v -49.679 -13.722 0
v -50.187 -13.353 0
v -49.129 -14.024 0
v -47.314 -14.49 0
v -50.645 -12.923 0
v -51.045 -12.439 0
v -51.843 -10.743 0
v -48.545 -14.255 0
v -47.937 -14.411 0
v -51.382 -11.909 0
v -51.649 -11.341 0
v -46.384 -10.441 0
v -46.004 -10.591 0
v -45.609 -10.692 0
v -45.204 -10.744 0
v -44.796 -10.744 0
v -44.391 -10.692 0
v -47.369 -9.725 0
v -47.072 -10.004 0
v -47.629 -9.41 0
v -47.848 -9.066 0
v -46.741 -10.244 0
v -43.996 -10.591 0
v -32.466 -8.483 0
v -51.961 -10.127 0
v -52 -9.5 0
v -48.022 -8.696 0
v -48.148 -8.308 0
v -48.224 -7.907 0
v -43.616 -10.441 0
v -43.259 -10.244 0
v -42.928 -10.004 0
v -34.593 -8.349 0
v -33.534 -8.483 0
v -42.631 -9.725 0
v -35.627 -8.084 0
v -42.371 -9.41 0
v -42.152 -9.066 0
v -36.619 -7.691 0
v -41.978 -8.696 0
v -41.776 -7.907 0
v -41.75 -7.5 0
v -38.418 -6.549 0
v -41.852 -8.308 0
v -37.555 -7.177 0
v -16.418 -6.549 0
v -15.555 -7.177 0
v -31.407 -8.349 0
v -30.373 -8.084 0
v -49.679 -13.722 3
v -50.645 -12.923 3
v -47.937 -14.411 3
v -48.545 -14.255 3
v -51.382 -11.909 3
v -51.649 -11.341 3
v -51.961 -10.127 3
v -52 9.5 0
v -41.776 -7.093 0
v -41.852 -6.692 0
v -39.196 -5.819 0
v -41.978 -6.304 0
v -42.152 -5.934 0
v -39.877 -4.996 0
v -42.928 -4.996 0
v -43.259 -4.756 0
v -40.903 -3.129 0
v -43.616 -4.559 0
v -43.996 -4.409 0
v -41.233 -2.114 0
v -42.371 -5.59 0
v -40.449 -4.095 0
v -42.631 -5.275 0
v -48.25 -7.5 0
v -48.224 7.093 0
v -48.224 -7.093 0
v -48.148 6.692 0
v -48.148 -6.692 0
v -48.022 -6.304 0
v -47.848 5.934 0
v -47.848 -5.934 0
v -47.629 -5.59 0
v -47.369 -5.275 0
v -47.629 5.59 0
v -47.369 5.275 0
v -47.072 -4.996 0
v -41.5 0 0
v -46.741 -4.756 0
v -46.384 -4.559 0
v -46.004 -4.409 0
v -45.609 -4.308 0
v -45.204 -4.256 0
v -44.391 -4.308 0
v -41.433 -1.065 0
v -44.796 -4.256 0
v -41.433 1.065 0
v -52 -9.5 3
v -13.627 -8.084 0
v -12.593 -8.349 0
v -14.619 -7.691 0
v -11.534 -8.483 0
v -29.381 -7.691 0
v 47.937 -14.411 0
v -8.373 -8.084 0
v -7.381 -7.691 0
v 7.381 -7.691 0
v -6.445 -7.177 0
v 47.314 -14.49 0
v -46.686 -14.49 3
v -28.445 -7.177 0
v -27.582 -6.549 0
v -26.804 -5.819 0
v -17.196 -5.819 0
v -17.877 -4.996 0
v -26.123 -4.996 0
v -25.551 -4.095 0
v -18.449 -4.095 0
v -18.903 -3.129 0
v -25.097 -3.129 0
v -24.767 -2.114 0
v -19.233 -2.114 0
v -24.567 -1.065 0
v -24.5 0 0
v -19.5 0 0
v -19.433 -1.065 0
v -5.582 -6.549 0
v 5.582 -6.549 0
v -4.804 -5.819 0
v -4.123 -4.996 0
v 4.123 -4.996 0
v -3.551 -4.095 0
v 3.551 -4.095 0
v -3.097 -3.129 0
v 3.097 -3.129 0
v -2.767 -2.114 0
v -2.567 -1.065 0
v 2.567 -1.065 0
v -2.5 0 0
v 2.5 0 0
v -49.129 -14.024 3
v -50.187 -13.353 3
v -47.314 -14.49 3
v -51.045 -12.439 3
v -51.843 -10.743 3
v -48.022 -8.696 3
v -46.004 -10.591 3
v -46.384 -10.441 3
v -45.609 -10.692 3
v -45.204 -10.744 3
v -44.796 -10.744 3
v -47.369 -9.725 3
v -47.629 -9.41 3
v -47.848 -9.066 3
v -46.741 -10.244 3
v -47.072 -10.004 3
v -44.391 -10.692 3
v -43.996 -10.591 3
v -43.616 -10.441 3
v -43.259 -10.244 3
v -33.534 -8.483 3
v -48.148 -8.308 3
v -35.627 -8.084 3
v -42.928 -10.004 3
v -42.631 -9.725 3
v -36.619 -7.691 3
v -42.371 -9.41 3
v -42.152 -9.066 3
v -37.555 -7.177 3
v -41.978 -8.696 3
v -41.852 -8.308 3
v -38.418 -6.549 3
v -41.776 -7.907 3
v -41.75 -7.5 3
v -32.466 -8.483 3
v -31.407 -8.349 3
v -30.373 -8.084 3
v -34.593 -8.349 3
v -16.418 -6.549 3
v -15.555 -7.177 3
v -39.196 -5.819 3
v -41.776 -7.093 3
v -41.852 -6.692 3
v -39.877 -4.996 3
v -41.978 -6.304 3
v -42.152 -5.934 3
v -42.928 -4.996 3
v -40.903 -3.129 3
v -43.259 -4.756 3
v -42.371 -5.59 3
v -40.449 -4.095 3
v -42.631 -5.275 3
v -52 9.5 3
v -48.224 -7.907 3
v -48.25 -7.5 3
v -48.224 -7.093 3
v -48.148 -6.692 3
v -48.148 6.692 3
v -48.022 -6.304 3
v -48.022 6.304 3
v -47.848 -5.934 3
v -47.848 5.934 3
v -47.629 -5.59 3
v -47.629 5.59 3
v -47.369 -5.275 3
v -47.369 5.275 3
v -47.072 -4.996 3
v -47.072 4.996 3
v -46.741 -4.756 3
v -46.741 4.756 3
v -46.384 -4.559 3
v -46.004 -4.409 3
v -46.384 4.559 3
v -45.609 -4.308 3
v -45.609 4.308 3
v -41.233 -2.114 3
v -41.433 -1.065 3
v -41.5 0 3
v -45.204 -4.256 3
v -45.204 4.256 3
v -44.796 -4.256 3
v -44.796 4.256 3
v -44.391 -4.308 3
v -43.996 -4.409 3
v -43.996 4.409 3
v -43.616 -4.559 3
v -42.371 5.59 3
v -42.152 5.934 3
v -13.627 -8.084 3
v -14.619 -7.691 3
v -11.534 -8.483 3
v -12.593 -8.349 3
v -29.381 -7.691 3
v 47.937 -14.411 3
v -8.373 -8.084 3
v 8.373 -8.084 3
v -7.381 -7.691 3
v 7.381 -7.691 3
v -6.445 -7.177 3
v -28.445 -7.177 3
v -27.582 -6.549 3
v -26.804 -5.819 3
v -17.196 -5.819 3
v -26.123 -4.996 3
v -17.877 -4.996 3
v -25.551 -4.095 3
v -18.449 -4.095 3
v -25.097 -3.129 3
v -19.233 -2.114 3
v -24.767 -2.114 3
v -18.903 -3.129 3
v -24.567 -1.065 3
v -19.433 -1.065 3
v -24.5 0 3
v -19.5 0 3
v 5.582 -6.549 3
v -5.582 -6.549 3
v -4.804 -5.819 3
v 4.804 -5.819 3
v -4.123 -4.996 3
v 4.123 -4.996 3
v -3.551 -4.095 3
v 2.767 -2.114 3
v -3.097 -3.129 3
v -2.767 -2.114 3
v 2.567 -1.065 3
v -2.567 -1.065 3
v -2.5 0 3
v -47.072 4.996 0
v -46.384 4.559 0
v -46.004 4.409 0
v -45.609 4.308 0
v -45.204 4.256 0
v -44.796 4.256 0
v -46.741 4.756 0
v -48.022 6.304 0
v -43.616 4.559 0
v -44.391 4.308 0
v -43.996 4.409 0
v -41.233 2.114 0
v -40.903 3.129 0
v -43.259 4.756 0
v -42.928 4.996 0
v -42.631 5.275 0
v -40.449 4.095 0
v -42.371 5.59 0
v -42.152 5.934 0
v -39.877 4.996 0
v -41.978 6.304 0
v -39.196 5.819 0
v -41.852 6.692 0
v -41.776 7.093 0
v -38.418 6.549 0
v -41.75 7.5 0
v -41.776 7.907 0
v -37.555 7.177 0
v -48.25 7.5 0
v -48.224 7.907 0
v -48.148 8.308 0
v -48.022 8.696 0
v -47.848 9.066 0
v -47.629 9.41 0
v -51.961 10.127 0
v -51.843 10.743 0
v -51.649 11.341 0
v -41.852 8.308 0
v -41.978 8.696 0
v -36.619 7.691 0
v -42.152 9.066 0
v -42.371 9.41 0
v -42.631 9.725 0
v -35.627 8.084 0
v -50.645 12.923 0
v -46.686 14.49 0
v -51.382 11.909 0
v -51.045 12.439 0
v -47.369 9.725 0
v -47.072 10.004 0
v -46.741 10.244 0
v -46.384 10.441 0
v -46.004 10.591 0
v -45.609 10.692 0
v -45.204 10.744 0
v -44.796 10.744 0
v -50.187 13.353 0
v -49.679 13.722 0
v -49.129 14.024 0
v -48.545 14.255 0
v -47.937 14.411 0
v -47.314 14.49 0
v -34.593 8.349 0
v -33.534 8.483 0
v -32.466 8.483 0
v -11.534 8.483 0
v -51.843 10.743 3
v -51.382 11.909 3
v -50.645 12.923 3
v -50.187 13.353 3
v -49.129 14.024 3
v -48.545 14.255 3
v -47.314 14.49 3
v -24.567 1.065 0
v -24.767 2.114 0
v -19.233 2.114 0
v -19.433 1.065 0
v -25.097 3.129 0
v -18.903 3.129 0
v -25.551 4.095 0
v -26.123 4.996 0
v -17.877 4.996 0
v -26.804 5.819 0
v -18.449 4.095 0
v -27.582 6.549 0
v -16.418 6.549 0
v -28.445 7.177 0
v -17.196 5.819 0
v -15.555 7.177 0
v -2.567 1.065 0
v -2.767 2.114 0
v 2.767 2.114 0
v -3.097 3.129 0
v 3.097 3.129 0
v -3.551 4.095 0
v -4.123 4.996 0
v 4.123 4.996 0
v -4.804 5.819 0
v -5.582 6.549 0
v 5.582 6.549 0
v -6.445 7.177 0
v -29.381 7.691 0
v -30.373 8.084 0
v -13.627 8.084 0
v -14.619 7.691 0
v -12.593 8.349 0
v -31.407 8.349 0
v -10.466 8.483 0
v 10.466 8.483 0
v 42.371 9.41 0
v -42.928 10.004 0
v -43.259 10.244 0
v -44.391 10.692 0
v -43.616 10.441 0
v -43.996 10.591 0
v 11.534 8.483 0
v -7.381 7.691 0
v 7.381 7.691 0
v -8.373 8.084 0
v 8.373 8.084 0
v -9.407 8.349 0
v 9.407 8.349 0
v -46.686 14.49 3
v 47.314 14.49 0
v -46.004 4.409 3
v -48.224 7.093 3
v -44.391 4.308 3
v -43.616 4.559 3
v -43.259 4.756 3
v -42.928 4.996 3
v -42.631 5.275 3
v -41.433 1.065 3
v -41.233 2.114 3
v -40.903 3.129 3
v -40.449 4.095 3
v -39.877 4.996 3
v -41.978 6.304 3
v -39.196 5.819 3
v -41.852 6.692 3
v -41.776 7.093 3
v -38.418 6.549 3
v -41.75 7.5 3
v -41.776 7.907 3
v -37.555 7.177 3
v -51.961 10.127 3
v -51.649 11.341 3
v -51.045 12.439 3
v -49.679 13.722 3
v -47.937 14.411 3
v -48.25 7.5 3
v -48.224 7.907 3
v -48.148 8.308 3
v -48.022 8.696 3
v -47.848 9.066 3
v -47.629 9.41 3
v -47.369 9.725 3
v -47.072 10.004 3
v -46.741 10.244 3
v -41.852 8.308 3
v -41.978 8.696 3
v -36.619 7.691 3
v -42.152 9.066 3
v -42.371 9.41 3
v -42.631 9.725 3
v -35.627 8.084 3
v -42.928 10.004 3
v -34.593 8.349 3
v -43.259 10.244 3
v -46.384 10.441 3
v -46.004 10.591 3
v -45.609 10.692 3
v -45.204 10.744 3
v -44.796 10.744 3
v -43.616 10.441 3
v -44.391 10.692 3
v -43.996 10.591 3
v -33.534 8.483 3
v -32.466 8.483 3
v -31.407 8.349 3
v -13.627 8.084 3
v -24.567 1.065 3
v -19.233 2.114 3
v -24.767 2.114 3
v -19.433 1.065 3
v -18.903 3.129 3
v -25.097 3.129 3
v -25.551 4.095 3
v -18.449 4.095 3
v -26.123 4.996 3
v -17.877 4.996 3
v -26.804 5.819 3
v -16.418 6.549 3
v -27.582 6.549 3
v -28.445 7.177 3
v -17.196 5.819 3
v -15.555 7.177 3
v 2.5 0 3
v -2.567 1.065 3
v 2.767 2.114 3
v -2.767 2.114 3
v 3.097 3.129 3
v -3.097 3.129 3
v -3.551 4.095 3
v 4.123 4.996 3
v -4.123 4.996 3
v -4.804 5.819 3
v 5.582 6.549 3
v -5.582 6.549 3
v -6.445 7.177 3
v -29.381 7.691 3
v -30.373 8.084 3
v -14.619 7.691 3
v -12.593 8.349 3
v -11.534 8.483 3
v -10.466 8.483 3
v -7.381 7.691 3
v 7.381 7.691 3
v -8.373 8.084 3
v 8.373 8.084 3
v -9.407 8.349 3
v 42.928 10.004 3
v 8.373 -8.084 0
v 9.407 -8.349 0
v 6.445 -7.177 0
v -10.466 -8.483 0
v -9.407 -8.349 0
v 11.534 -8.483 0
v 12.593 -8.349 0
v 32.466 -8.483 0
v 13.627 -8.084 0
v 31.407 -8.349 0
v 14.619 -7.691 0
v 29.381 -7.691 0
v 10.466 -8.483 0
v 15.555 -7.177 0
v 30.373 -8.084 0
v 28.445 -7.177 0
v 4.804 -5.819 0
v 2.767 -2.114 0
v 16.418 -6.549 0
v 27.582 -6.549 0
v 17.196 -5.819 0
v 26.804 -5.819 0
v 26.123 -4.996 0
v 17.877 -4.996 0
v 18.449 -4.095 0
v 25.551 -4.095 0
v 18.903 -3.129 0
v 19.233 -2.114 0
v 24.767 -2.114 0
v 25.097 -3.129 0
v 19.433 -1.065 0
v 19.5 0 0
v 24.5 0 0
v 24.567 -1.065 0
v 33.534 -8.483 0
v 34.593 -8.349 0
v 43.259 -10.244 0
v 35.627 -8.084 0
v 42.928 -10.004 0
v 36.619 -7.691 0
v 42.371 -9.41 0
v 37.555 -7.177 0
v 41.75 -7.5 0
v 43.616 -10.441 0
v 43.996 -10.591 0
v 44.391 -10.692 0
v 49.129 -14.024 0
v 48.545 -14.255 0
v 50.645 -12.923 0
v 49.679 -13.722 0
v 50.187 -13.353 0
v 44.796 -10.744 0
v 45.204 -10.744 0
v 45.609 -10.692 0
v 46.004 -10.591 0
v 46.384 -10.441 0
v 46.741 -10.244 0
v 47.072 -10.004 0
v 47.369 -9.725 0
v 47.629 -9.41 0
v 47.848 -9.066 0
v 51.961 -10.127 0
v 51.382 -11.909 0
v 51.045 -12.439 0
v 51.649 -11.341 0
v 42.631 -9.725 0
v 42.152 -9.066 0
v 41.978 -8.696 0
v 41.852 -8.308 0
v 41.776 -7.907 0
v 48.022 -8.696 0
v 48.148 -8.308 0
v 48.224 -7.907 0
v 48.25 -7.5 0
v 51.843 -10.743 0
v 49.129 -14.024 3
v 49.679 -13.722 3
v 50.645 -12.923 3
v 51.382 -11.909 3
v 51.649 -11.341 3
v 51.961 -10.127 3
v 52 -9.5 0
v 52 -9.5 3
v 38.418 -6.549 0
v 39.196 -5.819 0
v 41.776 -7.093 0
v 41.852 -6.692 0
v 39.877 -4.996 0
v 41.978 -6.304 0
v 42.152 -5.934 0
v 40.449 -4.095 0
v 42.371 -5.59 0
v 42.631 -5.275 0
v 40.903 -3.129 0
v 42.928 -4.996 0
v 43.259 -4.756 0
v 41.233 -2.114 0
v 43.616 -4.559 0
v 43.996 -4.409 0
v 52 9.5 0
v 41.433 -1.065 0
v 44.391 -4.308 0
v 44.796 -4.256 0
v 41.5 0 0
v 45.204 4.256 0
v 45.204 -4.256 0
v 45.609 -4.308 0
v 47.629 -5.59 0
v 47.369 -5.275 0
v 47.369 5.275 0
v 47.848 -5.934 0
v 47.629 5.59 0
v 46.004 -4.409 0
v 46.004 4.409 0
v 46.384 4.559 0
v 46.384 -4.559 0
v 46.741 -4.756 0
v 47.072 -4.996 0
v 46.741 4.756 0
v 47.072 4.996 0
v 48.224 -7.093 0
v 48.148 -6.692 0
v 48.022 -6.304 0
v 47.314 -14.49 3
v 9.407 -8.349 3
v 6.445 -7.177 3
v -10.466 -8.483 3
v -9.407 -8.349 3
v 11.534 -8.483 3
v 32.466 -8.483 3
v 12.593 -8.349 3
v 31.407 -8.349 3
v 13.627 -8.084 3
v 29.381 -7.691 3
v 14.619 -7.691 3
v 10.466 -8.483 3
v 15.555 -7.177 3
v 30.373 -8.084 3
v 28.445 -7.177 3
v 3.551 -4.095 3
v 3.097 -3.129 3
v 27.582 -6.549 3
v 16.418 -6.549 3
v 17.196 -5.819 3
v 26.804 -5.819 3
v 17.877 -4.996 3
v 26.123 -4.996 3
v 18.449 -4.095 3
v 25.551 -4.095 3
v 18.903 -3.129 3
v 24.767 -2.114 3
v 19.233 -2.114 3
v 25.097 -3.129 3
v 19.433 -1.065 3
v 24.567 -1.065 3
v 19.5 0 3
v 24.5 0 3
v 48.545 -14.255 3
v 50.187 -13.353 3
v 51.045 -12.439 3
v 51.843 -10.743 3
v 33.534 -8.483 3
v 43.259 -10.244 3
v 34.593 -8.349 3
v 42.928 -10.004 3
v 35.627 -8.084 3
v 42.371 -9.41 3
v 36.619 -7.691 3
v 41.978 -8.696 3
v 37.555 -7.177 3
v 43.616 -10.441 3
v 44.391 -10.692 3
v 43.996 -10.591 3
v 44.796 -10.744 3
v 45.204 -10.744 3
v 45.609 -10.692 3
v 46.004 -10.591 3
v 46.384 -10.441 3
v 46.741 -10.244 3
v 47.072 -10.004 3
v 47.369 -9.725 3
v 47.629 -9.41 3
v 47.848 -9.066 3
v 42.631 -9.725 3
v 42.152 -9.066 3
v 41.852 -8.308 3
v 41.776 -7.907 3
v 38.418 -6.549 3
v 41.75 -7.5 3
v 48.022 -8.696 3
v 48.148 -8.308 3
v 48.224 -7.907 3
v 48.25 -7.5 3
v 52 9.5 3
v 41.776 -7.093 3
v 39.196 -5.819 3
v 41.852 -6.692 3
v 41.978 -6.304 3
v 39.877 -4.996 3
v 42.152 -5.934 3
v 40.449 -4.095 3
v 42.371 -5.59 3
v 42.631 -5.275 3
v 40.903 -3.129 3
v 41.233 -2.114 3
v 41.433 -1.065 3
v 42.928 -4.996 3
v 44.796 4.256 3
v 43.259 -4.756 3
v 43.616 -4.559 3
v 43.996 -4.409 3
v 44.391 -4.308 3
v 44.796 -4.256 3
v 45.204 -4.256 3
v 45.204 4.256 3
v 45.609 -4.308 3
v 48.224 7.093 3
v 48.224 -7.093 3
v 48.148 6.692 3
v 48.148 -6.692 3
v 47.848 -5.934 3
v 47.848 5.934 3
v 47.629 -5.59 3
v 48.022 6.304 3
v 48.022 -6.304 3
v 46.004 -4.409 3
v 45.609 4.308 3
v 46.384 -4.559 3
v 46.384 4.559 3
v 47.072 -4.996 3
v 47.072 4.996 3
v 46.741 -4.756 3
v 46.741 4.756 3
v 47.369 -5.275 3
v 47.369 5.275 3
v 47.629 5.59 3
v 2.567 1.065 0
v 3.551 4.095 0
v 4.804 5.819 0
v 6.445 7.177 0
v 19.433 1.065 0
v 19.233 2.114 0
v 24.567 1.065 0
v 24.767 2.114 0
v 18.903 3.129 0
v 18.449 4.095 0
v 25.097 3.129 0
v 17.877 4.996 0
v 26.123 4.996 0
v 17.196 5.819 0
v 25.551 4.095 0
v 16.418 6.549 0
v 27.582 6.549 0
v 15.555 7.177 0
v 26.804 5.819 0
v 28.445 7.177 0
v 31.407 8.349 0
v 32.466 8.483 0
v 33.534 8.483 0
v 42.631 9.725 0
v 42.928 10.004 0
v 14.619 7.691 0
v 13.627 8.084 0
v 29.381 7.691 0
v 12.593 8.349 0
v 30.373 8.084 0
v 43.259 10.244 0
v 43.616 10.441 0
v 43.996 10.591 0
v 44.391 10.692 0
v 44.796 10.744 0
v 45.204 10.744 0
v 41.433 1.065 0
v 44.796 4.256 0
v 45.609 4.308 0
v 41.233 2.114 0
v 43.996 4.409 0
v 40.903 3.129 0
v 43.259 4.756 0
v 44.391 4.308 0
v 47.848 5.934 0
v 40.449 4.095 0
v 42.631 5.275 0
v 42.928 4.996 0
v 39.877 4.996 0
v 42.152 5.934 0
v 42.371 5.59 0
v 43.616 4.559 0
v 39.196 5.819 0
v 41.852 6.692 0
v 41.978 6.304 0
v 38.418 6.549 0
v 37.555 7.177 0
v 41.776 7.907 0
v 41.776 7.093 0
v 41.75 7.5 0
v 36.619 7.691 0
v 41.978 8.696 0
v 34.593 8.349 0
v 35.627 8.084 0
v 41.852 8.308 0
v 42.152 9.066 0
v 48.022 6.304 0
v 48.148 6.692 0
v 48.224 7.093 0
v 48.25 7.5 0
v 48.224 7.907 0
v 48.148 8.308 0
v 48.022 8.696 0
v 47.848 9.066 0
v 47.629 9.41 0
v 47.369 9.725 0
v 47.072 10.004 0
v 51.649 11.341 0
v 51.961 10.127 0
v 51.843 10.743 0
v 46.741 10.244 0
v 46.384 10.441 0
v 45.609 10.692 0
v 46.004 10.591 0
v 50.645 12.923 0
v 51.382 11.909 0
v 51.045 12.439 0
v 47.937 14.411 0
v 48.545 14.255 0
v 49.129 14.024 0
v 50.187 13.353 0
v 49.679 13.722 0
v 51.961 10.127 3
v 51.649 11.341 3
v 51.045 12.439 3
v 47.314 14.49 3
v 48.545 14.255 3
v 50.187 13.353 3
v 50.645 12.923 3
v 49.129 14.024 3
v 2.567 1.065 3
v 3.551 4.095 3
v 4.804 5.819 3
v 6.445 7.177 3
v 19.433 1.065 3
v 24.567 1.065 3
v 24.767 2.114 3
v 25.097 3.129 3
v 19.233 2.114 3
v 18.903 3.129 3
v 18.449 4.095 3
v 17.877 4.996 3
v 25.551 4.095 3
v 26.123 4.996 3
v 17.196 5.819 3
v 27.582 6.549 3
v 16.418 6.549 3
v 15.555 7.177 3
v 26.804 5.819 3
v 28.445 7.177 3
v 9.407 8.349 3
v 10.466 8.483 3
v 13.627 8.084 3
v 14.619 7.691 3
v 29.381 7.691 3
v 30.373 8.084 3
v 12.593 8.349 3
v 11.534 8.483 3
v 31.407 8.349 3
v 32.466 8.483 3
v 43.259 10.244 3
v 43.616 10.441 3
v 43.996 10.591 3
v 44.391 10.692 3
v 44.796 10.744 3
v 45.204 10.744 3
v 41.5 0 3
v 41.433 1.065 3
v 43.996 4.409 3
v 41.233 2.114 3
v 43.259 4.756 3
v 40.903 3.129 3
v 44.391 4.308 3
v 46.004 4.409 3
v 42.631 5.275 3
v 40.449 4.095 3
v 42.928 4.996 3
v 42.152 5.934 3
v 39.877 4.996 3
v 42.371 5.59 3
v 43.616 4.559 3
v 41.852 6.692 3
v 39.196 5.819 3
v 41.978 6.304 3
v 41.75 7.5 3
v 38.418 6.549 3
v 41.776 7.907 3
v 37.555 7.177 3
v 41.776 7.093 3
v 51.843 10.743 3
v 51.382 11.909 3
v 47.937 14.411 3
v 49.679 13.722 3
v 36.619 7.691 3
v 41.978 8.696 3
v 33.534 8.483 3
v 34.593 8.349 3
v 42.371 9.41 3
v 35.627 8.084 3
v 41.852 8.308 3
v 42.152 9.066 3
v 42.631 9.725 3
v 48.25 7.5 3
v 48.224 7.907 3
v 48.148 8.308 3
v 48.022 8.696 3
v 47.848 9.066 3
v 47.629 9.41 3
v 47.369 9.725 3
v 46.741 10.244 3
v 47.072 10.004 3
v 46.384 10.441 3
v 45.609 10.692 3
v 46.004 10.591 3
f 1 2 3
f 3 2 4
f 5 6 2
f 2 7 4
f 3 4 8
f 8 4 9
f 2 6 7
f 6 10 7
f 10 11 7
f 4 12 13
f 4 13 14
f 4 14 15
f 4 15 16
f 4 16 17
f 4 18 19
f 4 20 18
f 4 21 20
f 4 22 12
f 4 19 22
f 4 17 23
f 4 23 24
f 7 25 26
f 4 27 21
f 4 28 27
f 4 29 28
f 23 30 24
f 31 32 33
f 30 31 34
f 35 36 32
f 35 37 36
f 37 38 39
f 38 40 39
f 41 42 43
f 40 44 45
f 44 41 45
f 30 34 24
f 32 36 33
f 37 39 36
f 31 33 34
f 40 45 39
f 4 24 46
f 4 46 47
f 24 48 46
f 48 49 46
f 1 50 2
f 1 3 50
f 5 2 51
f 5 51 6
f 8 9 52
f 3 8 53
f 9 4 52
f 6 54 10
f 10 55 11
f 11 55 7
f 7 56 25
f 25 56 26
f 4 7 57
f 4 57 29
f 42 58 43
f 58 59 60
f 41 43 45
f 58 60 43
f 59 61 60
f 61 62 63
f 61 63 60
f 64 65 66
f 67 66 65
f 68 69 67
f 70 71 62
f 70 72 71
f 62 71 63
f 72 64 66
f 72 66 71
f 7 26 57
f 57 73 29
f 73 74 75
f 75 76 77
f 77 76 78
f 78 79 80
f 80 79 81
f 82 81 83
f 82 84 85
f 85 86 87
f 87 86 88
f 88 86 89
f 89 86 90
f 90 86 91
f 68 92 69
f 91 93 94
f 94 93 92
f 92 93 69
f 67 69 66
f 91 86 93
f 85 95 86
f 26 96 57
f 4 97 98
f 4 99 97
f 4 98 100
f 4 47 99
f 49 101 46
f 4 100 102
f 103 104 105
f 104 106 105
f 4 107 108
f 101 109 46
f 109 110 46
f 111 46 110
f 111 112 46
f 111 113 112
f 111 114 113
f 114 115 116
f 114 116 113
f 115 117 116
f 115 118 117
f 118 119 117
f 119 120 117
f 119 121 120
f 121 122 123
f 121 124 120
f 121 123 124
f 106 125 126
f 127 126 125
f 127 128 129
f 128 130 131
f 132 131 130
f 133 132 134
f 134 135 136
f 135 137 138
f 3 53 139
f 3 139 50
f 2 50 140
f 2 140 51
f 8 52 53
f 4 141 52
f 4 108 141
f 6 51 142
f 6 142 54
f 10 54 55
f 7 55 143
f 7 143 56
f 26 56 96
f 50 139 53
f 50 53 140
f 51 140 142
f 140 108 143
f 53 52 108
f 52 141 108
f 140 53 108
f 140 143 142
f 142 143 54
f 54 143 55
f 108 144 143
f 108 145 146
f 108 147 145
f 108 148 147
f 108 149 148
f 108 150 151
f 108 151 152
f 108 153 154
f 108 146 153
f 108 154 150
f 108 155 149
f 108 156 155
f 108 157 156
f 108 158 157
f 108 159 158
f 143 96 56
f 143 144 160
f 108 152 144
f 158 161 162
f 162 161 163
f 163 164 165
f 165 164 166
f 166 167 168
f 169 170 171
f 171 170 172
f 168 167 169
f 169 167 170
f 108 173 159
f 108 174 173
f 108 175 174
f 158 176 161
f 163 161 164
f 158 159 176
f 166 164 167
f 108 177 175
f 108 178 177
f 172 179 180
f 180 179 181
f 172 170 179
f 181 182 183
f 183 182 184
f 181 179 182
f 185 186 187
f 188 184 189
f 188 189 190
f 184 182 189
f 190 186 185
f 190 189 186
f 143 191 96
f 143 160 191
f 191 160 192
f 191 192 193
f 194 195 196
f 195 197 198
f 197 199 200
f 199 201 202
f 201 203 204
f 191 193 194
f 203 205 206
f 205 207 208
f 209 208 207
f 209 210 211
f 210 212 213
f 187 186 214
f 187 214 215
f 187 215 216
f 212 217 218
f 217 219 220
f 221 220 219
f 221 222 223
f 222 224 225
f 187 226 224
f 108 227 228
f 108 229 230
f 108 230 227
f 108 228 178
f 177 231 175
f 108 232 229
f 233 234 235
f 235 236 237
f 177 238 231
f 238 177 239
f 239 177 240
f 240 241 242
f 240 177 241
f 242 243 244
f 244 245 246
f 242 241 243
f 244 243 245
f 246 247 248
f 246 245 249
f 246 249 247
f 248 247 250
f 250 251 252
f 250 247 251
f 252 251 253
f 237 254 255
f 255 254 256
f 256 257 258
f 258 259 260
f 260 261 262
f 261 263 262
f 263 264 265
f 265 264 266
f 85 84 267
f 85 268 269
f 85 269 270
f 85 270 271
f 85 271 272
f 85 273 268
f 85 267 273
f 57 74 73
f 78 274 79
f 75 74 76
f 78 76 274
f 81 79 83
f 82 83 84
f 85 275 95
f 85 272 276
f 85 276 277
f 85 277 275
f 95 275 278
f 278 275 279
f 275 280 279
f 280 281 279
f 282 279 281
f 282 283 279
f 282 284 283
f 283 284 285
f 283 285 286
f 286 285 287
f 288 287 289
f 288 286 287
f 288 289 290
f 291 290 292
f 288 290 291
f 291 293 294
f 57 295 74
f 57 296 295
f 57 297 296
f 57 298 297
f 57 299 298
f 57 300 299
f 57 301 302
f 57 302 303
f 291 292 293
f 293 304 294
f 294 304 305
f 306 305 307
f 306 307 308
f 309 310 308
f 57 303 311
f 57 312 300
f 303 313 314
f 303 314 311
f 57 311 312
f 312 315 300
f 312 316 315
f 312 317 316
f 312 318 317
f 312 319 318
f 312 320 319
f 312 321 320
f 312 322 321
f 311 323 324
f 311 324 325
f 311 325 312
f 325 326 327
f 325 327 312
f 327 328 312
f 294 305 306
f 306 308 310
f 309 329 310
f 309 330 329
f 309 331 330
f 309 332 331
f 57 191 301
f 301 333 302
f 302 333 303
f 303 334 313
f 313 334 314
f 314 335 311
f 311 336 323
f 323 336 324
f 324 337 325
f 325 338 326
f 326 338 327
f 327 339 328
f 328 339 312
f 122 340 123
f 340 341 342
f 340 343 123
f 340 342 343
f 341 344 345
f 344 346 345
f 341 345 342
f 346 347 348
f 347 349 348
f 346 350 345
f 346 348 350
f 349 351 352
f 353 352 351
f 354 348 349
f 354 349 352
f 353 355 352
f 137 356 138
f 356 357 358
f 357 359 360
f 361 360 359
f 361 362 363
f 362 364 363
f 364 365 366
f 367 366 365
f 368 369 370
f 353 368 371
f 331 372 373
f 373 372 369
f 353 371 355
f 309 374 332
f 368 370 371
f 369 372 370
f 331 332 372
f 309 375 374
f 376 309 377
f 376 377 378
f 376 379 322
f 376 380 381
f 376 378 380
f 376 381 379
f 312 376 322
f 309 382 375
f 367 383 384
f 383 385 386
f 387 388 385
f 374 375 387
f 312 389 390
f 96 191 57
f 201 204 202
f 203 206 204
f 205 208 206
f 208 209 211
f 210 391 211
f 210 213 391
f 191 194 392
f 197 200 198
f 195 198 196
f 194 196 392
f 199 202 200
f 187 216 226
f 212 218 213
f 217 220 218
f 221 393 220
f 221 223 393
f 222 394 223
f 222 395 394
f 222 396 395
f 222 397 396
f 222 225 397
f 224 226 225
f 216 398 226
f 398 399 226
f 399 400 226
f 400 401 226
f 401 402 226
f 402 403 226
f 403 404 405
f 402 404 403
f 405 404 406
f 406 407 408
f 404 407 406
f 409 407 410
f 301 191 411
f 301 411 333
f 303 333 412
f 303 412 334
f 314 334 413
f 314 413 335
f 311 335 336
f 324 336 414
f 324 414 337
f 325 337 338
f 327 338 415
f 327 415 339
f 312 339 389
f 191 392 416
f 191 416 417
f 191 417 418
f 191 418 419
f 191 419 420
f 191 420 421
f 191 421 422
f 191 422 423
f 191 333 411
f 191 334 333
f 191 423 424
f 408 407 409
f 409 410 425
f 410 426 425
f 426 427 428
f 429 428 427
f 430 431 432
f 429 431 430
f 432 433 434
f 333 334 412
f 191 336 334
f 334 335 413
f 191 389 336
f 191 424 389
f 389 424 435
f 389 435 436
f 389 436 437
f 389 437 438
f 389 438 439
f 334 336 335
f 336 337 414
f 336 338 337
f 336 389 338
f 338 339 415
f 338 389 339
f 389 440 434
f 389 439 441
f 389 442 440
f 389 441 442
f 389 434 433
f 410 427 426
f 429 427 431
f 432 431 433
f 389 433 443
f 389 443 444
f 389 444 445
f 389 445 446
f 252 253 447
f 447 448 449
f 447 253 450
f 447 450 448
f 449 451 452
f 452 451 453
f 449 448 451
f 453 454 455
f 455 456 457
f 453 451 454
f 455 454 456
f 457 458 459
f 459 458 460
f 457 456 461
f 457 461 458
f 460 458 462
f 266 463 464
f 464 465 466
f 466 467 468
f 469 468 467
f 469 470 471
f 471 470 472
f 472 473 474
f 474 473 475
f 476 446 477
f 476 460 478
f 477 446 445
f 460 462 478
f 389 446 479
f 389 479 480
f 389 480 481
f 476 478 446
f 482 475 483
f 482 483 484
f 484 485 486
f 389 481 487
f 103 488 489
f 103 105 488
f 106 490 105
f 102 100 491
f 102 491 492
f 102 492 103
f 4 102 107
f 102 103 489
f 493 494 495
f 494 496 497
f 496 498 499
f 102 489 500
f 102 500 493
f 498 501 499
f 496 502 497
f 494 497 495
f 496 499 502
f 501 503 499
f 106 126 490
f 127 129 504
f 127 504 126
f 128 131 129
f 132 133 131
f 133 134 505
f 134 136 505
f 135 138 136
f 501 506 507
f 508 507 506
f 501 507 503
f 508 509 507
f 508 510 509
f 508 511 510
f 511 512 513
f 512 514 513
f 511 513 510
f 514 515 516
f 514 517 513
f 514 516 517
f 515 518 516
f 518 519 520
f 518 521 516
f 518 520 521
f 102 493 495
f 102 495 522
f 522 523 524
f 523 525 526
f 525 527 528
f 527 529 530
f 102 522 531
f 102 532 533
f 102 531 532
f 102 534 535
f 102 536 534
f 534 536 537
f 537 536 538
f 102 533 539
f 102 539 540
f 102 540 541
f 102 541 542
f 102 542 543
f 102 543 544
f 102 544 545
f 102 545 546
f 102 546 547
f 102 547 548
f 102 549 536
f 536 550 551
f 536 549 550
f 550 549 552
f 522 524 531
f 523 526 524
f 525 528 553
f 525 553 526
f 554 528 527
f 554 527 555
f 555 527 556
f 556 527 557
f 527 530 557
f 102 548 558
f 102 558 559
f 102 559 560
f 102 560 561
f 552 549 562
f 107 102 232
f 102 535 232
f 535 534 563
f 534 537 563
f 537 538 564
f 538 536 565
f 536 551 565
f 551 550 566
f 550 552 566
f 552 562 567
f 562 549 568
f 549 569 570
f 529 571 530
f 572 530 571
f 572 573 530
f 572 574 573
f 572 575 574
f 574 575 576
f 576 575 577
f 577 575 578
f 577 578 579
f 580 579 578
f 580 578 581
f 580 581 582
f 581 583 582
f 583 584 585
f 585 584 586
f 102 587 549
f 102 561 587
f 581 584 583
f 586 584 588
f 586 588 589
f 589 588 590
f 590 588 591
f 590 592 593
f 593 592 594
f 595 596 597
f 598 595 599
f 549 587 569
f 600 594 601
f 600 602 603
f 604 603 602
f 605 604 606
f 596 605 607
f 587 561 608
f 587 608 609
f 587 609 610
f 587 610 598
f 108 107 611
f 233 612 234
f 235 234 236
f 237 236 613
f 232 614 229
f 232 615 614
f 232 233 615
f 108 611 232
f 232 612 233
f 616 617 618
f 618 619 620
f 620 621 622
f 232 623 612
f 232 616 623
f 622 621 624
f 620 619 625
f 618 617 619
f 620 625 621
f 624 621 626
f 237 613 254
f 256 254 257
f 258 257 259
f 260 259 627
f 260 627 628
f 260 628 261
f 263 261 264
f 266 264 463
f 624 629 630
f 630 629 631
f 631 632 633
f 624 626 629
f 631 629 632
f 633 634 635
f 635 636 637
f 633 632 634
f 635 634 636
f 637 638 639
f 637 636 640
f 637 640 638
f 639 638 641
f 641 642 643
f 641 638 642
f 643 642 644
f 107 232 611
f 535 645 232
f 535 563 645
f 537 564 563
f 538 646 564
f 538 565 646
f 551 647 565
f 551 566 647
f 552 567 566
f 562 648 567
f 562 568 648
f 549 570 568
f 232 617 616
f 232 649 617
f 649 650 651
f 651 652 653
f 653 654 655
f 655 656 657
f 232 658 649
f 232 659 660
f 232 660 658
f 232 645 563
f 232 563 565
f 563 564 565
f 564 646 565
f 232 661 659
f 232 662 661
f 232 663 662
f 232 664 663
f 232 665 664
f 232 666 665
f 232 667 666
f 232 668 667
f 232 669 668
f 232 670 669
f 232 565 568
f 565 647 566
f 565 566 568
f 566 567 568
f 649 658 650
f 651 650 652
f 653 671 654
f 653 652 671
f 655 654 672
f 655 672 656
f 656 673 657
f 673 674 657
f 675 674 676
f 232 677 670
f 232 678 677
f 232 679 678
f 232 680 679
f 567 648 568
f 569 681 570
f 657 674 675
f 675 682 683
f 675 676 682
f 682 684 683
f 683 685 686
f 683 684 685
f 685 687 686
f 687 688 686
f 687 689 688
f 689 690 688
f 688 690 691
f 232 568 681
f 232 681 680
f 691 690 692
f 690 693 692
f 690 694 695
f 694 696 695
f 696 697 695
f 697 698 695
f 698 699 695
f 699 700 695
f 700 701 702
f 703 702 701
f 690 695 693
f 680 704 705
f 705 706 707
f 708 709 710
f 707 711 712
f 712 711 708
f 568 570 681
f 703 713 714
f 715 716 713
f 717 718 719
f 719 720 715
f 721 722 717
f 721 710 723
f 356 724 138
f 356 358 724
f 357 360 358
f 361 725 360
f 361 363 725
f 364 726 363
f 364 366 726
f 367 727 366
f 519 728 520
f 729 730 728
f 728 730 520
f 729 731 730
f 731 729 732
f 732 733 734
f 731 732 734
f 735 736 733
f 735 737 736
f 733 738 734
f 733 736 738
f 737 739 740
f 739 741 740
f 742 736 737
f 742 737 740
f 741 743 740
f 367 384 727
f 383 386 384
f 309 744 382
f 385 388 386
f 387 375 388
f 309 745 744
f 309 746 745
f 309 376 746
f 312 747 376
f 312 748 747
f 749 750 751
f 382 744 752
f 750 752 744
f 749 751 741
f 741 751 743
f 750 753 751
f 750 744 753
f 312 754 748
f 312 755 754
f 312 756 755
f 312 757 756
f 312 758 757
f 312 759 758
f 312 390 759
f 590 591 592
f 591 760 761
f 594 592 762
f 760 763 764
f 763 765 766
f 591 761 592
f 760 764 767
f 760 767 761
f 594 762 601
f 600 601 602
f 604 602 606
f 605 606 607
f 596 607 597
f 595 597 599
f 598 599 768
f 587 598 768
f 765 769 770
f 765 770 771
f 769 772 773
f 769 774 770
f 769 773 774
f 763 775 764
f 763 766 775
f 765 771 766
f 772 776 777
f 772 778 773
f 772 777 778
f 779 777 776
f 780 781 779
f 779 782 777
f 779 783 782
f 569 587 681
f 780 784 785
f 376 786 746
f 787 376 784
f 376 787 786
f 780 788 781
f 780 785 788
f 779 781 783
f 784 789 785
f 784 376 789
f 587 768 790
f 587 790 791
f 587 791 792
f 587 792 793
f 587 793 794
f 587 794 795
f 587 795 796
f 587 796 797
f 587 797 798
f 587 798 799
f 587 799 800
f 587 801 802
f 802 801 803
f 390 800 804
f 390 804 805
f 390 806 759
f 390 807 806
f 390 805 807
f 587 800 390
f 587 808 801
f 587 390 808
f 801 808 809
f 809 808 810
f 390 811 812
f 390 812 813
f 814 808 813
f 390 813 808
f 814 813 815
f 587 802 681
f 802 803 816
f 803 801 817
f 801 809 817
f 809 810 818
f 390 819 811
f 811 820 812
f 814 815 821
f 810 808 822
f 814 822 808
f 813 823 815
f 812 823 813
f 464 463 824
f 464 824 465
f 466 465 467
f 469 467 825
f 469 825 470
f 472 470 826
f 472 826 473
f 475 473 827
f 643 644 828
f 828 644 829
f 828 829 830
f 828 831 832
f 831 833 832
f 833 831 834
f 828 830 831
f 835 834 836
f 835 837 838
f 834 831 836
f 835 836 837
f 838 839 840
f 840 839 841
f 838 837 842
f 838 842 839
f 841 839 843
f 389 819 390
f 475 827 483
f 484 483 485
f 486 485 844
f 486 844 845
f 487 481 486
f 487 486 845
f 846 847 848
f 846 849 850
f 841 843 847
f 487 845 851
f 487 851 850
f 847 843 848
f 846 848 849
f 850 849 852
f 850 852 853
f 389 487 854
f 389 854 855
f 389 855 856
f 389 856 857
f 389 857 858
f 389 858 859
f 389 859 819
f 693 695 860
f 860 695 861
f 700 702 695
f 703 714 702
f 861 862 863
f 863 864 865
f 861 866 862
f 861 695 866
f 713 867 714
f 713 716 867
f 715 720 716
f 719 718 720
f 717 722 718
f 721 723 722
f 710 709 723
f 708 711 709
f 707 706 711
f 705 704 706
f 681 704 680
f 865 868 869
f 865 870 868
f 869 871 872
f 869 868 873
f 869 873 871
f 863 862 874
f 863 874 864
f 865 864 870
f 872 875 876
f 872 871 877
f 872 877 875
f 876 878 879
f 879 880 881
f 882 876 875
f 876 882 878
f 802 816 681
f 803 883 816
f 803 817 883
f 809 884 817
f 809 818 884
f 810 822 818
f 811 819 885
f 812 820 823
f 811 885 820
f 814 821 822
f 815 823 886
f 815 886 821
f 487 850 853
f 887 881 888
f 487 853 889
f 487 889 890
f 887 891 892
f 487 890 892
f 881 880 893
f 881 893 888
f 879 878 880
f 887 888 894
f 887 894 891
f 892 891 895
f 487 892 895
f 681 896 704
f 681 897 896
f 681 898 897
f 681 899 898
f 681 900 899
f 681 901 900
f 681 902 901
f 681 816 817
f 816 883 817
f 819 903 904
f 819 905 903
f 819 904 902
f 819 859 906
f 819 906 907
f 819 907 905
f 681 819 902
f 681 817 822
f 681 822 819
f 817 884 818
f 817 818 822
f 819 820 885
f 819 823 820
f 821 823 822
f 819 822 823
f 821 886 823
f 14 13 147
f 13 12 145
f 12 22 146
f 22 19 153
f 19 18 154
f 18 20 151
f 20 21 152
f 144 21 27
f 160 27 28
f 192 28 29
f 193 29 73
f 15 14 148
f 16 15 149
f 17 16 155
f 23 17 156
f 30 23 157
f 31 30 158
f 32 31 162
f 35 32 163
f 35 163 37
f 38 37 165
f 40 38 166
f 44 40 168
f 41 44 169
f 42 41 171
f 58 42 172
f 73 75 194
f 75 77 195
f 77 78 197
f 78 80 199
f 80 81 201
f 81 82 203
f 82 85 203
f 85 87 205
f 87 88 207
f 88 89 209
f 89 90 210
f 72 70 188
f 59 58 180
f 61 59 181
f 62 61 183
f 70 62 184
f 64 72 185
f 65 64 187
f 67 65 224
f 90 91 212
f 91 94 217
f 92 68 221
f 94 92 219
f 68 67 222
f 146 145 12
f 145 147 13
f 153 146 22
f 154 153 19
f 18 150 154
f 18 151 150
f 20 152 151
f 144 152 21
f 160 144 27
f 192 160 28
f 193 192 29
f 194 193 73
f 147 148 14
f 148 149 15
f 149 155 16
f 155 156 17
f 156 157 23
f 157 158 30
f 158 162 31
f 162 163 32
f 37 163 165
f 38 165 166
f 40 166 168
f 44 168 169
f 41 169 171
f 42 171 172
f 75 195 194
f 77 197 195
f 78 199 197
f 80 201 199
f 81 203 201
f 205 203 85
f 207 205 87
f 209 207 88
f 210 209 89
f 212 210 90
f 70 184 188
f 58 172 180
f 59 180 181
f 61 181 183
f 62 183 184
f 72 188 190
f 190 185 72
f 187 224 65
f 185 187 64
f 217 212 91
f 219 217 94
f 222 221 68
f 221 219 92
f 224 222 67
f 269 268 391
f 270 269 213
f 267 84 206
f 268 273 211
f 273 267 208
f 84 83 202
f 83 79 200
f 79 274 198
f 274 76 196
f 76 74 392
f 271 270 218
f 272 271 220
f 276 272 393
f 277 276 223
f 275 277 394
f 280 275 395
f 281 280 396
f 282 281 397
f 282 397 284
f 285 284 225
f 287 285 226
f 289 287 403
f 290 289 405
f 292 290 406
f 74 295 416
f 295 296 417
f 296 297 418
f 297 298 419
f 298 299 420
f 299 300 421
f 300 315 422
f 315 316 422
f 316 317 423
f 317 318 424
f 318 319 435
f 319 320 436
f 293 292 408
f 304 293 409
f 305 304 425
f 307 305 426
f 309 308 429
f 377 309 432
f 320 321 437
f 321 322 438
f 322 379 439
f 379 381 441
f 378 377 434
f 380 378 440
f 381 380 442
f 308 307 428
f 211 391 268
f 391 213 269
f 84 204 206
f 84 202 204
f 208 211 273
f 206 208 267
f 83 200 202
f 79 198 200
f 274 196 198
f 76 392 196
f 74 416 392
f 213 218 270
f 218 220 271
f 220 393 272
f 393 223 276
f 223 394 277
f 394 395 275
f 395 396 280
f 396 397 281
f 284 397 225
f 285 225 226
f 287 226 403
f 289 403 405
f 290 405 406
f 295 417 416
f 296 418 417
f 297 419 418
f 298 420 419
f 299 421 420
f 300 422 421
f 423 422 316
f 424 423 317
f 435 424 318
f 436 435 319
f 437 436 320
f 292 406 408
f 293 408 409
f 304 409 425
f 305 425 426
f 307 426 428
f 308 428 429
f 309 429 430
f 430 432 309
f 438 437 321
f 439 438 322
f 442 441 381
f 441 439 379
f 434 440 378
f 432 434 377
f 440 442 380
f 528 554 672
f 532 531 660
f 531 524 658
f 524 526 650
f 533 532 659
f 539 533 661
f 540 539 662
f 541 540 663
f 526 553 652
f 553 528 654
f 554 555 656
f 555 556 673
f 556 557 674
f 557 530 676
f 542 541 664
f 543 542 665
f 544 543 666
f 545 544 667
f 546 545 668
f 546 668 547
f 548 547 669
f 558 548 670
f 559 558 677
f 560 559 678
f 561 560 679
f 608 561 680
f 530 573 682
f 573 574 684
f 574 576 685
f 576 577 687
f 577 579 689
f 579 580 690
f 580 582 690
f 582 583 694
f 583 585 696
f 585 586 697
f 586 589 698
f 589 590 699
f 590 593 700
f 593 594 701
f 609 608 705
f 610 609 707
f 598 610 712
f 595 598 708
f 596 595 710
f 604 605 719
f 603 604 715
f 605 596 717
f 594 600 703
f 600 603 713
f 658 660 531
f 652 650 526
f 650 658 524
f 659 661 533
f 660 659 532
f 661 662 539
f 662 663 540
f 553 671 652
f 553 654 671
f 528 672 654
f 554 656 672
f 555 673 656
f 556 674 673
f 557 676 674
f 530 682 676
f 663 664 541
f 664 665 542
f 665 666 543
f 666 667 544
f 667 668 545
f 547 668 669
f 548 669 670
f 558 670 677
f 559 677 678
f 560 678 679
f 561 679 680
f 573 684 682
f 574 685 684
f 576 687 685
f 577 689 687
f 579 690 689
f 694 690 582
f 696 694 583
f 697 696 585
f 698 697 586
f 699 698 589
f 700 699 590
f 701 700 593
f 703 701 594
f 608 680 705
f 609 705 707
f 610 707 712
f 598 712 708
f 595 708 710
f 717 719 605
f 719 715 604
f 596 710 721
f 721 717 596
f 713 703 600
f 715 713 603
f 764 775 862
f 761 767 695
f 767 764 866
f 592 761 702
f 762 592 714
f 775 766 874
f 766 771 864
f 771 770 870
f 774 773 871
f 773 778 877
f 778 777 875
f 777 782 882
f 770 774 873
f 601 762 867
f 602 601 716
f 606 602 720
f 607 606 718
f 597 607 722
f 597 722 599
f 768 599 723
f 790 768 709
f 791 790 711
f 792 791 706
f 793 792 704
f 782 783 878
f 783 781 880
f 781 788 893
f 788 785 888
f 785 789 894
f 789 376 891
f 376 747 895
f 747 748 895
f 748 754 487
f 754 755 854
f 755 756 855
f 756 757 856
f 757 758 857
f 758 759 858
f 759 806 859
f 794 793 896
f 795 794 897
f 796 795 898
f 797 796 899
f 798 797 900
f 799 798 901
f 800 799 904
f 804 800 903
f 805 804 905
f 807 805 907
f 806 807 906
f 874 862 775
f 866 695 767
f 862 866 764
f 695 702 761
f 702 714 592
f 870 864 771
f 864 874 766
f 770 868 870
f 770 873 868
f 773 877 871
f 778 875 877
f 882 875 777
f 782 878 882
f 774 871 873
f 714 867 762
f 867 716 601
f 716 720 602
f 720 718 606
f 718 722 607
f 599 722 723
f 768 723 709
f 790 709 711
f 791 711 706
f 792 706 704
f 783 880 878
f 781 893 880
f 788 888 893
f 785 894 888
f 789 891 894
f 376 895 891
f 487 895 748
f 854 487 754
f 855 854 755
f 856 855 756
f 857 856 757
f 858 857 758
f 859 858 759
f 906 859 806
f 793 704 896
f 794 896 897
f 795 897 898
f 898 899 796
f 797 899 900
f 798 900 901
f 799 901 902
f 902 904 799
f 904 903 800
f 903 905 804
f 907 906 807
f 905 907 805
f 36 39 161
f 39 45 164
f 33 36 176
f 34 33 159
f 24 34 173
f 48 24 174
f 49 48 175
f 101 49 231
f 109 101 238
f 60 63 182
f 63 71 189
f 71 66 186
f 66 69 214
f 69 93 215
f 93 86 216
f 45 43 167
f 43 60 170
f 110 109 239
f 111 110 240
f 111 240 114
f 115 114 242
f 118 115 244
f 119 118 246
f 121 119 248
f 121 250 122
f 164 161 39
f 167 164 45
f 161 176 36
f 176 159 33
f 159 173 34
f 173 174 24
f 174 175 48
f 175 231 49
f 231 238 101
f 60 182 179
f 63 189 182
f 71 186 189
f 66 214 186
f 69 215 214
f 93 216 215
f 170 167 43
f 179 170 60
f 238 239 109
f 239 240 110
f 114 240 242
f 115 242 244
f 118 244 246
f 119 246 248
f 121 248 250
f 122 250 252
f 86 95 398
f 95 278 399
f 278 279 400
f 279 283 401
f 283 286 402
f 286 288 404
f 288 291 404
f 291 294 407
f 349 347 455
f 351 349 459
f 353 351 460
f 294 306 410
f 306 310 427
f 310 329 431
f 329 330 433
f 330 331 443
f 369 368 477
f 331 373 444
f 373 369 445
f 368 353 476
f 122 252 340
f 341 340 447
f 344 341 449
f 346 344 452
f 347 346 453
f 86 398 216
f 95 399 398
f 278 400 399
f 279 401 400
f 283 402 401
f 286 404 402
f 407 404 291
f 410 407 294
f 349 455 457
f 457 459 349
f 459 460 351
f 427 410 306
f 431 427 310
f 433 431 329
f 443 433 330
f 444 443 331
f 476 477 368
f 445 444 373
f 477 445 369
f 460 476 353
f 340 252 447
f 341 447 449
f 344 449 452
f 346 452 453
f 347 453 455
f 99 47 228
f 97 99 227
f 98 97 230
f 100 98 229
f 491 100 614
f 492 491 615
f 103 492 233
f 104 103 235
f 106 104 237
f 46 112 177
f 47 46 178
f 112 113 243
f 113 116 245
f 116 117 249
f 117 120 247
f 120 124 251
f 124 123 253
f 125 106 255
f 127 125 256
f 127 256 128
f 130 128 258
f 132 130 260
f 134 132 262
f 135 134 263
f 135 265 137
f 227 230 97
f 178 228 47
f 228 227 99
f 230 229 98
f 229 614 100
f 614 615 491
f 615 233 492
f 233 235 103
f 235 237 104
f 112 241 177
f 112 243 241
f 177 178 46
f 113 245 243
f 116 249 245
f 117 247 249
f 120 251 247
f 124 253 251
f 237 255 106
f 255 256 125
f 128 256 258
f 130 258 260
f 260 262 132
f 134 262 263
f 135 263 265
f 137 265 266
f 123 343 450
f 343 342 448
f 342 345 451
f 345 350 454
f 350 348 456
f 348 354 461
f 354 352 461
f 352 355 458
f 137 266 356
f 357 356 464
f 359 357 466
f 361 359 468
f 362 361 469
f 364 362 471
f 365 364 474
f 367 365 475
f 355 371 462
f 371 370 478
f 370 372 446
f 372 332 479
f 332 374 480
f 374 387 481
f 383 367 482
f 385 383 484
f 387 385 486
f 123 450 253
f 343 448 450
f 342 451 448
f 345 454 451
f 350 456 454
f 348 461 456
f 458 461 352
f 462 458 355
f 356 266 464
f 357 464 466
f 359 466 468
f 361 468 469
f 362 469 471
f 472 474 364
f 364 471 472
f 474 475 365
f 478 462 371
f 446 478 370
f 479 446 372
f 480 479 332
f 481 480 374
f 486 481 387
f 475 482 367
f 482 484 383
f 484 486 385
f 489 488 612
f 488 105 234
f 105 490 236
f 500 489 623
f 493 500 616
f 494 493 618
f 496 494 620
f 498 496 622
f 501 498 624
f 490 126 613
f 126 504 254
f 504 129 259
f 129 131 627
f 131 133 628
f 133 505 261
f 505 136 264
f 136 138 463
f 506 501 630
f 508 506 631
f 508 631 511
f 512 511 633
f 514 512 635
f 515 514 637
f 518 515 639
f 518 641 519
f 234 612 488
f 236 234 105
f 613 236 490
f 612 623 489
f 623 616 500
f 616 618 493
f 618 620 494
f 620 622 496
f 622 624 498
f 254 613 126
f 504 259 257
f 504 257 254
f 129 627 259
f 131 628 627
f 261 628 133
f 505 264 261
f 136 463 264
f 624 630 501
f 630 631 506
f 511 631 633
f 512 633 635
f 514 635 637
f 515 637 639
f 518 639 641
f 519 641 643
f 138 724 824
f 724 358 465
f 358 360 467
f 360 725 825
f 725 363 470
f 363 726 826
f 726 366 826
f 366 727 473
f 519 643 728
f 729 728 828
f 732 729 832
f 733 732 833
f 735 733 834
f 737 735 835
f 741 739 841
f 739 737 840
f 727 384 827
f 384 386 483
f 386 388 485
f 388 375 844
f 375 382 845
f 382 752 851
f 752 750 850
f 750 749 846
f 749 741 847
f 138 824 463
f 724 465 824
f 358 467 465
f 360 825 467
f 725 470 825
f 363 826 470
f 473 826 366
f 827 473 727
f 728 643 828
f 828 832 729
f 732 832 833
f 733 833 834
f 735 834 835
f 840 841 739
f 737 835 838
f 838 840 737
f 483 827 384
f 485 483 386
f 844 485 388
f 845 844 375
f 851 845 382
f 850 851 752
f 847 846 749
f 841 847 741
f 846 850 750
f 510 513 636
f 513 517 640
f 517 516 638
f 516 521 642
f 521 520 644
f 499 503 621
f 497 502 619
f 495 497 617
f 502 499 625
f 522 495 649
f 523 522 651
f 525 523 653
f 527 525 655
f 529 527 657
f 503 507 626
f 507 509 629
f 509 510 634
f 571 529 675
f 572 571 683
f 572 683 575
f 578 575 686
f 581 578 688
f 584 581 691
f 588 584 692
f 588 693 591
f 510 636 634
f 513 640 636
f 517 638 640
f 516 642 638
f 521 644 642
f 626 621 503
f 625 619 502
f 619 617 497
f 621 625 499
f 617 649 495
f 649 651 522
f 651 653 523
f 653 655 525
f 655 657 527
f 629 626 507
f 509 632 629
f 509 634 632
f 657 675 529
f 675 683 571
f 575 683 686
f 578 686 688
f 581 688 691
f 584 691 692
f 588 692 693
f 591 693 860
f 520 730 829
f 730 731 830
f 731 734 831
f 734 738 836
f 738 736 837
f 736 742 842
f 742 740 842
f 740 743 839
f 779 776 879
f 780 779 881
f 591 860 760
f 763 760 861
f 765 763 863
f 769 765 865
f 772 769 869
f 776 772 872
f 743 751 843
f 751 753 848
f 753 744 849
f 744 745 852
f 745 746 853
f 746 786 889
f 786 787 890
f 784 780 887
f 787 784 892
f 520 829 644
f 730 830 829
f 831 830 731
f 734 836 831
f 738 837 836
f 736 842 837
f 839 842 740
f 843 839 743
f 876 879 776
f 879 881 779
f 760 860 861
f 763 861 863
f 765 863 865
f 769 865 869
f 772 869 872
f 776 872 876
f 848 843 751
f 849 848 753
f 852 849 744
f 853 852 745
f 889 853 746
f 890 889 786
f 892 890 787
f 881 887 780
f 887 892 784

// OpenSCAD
$fn = 50;

difference() {
	union() {
		hull() {
			translate(v = [-47.0, 9.5, 0]) {
				cylinder(h = 3, r = 5);
			}
			translate(v = [47.0, 9.5, 0]) {
				cylinder(h = 3, r = 5);
			}
			translate(v = [-47.0, -9.5, 0]) {
				cylinder(h = 3, r = 5);
			}
			translate(v = [47.0, -9.5, 0]) {
				cylinder(h = 3, r = 5);
			}
		}
	}
	union() {
		translate(v = [-45.0, -7.5, 0]) {
			cylinder(h = 3, r = 3.25);
		}
		translate(v = [-45.0, 7.5, 0]) {
			cylinder(h = 3, r = 3.25);
		}
		translate(v = [45.0, -7.5, 0]) {
			cylinder(h = 3, r = 3.25);
		}
		translate(v = [45.0, 7.5, 0]) {
			cylinder(h = 3, r = 3.25);
		}
		translate(v = [-33.0, 0, 0.0]) {
			cylinder(h = 3, r = 8.5);
		}
		translate(v = [-11.0, 0, 0.0]) {
			cylinder(h = 3, r = 8.5);
		}
		translate(v = [11.0, 0, 0.0]) {
			cylinder(h = 3, r = 8.5);
		}
		translate(v = [33.0, 0, 0.0]) {
			cylinder(h = 3, r = 8.5);
		}
	}
}
